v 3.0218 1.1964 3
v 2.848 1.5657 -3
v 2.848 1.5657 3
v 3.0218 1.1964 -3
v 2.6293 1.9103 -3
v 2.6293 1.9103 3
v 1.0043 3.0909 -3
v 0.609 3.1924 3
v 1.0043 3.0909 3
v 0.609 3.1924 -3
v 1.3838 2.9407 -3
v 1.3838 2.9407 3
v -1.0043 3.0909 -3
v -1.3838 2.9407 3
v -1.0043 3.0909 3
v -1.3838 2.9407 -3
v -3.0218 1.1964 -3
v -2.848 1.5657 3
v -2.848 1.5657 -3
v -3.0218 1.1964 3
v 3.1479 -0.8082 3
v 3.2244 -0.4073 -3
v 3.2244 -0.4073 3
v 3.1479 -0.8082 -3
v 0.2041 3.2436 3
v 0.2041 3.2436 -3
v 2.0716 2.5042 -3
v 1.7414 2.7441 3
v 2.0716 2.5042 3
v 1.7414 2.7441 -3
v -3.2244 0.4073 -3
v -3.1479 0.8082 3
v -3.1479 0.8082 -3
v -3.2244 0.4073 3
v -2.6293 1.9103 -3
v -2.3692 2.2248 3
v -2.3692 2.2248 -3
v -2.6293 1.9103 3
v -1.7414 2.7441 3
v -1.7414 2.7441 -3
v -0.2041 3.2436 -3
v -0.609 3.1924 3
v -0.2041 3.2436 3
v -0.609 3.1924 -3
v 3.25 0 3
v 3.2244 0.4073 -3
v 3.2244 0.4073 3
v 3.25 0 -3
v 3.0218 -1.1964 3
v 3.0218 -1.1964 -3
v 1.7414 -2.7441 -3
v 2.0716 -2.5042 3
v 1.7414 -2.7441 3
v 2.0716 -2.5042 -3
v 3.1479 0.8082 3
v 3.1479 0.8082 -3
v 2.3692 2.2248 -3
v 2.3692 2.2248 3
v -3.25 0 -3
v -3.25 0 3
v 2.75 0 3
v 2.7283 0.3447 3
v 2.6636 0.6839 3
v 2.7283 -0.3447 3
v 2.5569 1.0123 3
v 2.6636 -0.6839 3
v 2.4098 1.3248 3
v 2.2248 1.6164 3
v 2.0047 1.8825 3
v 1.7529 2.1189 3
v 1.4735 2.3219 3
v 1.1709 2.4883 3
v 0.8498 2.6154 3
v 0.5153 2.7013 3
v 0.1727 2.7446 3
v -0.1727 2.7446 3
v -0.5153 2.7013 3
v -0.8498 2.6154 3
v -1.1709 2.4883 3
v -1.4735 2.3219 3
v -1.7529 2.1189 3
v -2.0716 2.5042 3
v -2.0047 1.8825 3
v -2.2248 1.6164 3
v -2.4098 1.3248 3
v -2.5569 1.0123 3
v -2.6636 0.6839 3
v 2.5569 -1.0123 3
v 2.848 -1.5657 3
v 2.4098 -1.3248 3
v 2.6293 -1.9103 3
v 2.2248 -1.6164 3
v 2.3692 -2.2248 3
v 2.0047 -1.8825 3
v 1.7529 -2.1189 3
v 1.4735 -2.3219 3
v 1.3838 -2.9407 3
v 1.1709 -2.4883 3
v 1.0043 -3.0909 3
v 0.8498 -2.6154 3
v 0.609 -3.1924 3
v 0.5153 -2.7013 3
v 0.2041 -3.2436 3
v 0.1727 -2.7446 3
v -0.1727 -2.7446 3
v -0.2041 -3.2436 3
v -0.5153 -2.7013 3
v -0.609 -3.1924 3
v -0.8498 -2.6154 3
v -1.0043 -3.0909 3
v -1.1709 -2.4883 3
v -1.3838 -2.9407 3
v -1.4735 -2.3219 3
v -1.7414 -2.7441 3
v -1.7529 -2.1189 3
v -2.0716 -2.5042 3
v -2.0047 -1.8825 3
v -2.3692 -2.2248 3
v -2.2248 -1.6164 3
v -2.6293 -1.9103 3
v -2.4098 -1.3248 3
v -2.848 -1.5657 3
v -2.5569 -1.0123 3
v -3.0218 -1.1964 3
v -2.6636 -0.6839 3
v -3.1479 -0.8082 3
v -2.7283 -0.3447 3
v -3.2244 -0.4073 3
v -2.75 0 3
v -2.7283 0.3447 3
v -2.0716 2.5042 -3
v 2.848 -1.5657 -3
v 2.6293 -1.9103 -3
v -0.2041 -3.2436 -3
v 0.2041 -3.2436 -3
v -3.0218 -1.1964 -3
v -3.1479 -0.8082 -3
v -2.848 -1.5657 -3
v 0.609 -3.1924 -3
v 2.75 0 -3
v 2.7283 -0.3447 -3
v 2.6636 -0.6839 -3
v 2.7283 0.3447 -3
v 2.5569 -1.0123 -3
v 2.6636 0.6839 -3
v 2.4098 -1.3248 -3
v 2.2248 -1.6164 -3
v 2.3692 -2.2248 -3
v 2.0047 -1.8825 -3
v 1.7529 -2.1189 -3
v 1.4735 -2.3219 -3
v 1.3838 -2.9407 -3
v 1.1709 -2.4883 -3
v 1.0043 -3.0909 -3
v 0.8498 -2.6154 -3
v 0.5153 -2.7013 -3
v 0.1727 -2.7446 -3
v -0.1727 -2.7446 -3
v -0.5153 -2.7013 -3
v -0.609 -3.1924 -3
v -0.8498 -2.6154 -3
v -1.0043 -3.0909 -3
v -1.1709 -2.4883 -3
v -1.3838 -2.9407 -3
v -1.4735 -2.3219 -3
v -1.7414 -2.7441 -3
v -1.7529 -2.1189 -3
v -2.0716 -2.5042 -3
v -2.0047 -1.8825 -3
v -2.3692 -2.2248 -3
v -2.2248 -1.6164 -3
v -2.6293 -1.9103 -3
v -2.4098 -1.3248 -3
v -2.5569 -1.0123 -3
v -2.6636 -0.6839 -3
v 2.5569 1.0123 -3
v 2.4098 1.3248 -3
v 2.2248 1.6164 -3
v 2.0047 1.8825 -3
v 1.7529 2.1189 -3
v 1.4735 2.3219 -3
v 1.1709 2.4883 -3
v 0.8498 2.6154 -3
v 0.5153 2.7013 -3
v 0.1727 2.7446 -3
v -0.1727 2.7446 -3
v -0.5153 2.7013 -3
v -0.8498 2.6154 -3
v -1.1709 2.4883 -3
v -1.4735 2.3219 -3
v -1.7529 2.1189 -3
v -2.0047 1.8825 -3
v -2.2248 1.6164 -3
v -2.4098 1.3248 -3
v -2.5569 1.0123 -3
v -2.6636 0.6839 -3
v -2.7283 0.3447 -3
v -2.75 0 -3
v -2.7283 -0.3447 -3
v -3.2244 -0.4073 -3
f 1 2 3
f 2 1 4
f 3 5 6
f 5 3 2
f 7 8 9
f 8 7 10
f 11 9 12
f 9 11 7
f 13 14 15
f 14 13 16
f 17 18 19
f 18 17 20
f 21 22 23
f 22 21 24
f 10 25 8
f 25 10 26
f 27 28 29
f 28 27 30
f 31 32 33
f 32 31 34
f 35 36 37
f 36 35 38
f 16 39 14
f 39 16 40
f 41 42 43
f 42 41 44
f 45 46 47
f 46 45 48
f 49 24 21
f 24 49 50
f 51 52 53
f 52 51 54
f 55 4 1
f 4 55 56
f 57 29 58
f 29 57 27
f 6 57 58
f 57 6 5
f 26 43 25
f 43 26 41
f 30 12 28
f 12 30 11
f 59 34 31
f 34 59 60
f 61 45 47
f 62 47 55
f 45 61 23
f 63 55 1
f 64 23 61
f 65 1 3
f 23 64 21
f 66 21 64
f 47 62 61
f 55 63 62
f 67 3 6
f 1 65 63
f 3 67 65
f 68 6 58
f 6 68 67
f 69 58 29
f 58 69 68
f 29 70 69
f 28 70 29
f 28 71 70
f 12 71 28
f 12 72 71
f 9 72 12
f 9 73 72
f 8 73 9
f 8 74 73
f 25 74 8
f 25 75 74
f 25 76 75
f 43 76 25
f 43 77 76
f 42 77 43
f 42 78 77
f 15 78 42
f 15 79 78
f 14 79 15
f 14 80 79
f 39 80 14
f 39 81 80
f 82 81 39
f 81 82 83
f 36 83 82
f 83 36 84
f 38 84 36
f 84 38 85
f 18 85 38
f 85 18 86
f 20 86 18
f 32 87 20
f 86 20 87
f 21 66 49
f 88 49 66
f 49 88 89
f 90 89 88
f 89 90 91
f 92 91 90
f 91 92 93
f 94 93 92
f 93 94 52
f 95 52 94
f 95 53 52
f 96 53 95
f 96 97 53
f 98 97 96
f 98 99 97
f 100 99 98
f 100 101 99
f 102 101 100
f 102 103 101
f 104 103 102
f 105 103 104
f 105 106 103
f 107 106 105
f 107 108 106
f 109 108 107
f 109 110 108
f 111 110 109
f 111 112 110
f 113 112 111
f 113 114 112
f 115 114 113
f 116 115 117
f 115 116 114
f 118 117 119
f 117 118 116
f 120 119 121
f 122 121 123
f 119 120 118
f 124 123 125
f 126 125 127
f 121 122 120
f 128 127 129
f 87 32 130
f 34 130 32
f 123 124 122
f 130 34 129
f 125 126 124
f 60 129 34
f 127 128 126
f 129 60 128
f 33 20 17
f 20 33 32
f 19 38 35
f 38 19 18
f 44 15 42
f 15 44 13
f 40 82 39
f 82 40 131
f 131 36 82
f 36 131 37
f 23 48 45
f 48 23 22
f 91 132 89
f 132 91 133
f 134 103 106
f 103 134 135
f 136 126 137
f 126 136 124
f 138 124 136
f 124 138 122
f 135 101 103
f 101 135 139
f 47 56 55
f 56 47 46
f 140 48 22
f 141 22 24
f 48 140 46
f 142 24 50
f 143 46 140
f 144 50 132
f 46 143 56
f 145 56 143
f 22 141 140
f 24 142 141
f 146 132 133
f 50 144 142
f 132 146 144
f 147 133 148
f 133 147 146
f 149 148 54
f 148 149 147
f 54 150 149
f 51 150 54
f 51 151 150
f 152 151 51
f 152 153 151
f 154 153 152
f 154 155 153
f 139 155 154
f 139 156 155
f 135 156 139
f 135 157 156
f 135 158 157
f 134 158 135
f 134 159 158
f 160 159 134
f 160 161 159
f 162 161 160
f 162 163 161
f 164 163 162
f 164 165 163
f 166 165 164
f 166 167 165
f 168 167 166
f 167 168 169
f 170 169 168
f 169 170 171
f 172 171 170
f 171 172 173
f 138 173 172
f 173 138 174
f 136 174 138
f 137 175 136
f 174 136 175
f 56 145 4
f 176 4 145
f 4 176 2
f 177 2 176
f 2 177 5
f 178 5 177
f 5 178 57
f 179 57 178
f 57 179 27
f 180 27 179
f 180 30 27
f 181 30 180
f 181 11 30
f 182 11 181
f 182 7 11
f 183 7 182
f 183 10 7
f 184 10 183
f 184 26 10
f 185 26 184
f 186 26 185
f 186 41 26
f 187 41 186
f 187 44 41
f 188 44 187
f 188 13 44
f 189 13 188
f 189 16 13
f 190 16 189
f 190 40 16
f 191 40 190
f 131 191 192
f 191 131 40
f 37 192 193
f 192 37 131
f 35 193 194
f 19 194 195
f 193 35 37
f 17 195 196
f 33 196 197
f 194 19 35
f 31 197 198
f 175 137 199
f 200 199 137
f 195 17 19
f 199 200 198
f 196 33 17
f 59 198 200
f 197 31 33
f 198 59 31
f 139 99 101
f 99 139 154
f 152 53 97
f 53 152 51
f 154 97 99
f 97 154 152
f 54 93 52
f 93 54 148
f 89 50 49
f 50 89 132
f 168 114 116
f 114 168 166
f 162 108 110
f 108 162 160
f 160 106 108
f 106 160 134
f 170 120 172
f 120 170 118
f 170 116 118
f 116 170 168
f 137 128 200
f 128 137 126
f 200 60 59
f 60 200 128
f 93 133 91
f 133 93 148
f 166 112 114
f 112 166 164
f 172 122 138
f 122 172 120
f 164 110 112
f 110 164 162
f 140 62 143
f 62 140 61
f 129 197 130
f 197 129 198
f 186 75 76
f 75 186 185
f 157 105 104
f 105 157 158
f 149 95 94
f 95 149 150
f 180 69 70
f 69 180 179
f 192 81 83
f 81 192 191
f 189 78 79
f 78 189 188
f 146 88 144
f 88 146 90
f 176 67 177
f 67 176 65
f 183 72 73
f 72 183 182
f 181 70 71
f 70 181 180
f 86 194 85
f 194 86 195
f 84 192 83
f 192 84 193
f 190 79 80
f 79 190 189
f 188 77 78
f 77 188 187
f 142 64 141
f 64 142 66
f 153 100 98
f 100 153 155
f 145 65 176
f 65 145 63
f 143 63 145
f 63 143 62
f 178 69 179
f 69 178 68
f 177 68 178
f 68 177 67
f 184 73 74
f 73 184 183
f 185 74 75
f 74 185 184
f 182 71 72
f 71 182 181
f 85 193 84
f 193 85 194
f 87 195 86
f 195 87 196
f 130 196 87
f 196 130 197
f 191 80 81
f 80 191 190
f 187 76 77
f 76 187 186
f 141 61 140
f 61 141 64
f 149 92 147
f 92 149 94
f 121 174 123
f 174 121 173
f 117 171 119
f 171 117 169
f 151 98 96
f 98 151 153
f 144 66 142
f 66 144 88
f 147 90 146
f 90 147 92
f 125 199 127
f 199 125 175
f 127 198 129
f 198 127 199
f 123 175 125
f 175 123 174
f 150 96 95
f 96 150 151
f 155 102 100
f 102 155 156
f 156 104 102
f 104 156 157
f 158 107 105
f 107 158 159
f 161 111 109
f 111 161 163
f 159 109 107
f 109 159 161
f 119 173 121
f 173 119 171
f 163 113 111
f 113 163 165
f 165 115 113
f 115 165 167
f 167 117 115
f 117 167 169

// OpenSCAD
$fn = 50;


difference() {
	union() {
		translate(v = [0, 0, -3.0000000000]) {
			cylinder(h = 6, r = 3.2500000000);
		}
	}
	union() {
		translate(v = [0, 0, -100.0000000000]) {
			cylinder(h = 200, r = 2.7500000000);
		}
	}
}
